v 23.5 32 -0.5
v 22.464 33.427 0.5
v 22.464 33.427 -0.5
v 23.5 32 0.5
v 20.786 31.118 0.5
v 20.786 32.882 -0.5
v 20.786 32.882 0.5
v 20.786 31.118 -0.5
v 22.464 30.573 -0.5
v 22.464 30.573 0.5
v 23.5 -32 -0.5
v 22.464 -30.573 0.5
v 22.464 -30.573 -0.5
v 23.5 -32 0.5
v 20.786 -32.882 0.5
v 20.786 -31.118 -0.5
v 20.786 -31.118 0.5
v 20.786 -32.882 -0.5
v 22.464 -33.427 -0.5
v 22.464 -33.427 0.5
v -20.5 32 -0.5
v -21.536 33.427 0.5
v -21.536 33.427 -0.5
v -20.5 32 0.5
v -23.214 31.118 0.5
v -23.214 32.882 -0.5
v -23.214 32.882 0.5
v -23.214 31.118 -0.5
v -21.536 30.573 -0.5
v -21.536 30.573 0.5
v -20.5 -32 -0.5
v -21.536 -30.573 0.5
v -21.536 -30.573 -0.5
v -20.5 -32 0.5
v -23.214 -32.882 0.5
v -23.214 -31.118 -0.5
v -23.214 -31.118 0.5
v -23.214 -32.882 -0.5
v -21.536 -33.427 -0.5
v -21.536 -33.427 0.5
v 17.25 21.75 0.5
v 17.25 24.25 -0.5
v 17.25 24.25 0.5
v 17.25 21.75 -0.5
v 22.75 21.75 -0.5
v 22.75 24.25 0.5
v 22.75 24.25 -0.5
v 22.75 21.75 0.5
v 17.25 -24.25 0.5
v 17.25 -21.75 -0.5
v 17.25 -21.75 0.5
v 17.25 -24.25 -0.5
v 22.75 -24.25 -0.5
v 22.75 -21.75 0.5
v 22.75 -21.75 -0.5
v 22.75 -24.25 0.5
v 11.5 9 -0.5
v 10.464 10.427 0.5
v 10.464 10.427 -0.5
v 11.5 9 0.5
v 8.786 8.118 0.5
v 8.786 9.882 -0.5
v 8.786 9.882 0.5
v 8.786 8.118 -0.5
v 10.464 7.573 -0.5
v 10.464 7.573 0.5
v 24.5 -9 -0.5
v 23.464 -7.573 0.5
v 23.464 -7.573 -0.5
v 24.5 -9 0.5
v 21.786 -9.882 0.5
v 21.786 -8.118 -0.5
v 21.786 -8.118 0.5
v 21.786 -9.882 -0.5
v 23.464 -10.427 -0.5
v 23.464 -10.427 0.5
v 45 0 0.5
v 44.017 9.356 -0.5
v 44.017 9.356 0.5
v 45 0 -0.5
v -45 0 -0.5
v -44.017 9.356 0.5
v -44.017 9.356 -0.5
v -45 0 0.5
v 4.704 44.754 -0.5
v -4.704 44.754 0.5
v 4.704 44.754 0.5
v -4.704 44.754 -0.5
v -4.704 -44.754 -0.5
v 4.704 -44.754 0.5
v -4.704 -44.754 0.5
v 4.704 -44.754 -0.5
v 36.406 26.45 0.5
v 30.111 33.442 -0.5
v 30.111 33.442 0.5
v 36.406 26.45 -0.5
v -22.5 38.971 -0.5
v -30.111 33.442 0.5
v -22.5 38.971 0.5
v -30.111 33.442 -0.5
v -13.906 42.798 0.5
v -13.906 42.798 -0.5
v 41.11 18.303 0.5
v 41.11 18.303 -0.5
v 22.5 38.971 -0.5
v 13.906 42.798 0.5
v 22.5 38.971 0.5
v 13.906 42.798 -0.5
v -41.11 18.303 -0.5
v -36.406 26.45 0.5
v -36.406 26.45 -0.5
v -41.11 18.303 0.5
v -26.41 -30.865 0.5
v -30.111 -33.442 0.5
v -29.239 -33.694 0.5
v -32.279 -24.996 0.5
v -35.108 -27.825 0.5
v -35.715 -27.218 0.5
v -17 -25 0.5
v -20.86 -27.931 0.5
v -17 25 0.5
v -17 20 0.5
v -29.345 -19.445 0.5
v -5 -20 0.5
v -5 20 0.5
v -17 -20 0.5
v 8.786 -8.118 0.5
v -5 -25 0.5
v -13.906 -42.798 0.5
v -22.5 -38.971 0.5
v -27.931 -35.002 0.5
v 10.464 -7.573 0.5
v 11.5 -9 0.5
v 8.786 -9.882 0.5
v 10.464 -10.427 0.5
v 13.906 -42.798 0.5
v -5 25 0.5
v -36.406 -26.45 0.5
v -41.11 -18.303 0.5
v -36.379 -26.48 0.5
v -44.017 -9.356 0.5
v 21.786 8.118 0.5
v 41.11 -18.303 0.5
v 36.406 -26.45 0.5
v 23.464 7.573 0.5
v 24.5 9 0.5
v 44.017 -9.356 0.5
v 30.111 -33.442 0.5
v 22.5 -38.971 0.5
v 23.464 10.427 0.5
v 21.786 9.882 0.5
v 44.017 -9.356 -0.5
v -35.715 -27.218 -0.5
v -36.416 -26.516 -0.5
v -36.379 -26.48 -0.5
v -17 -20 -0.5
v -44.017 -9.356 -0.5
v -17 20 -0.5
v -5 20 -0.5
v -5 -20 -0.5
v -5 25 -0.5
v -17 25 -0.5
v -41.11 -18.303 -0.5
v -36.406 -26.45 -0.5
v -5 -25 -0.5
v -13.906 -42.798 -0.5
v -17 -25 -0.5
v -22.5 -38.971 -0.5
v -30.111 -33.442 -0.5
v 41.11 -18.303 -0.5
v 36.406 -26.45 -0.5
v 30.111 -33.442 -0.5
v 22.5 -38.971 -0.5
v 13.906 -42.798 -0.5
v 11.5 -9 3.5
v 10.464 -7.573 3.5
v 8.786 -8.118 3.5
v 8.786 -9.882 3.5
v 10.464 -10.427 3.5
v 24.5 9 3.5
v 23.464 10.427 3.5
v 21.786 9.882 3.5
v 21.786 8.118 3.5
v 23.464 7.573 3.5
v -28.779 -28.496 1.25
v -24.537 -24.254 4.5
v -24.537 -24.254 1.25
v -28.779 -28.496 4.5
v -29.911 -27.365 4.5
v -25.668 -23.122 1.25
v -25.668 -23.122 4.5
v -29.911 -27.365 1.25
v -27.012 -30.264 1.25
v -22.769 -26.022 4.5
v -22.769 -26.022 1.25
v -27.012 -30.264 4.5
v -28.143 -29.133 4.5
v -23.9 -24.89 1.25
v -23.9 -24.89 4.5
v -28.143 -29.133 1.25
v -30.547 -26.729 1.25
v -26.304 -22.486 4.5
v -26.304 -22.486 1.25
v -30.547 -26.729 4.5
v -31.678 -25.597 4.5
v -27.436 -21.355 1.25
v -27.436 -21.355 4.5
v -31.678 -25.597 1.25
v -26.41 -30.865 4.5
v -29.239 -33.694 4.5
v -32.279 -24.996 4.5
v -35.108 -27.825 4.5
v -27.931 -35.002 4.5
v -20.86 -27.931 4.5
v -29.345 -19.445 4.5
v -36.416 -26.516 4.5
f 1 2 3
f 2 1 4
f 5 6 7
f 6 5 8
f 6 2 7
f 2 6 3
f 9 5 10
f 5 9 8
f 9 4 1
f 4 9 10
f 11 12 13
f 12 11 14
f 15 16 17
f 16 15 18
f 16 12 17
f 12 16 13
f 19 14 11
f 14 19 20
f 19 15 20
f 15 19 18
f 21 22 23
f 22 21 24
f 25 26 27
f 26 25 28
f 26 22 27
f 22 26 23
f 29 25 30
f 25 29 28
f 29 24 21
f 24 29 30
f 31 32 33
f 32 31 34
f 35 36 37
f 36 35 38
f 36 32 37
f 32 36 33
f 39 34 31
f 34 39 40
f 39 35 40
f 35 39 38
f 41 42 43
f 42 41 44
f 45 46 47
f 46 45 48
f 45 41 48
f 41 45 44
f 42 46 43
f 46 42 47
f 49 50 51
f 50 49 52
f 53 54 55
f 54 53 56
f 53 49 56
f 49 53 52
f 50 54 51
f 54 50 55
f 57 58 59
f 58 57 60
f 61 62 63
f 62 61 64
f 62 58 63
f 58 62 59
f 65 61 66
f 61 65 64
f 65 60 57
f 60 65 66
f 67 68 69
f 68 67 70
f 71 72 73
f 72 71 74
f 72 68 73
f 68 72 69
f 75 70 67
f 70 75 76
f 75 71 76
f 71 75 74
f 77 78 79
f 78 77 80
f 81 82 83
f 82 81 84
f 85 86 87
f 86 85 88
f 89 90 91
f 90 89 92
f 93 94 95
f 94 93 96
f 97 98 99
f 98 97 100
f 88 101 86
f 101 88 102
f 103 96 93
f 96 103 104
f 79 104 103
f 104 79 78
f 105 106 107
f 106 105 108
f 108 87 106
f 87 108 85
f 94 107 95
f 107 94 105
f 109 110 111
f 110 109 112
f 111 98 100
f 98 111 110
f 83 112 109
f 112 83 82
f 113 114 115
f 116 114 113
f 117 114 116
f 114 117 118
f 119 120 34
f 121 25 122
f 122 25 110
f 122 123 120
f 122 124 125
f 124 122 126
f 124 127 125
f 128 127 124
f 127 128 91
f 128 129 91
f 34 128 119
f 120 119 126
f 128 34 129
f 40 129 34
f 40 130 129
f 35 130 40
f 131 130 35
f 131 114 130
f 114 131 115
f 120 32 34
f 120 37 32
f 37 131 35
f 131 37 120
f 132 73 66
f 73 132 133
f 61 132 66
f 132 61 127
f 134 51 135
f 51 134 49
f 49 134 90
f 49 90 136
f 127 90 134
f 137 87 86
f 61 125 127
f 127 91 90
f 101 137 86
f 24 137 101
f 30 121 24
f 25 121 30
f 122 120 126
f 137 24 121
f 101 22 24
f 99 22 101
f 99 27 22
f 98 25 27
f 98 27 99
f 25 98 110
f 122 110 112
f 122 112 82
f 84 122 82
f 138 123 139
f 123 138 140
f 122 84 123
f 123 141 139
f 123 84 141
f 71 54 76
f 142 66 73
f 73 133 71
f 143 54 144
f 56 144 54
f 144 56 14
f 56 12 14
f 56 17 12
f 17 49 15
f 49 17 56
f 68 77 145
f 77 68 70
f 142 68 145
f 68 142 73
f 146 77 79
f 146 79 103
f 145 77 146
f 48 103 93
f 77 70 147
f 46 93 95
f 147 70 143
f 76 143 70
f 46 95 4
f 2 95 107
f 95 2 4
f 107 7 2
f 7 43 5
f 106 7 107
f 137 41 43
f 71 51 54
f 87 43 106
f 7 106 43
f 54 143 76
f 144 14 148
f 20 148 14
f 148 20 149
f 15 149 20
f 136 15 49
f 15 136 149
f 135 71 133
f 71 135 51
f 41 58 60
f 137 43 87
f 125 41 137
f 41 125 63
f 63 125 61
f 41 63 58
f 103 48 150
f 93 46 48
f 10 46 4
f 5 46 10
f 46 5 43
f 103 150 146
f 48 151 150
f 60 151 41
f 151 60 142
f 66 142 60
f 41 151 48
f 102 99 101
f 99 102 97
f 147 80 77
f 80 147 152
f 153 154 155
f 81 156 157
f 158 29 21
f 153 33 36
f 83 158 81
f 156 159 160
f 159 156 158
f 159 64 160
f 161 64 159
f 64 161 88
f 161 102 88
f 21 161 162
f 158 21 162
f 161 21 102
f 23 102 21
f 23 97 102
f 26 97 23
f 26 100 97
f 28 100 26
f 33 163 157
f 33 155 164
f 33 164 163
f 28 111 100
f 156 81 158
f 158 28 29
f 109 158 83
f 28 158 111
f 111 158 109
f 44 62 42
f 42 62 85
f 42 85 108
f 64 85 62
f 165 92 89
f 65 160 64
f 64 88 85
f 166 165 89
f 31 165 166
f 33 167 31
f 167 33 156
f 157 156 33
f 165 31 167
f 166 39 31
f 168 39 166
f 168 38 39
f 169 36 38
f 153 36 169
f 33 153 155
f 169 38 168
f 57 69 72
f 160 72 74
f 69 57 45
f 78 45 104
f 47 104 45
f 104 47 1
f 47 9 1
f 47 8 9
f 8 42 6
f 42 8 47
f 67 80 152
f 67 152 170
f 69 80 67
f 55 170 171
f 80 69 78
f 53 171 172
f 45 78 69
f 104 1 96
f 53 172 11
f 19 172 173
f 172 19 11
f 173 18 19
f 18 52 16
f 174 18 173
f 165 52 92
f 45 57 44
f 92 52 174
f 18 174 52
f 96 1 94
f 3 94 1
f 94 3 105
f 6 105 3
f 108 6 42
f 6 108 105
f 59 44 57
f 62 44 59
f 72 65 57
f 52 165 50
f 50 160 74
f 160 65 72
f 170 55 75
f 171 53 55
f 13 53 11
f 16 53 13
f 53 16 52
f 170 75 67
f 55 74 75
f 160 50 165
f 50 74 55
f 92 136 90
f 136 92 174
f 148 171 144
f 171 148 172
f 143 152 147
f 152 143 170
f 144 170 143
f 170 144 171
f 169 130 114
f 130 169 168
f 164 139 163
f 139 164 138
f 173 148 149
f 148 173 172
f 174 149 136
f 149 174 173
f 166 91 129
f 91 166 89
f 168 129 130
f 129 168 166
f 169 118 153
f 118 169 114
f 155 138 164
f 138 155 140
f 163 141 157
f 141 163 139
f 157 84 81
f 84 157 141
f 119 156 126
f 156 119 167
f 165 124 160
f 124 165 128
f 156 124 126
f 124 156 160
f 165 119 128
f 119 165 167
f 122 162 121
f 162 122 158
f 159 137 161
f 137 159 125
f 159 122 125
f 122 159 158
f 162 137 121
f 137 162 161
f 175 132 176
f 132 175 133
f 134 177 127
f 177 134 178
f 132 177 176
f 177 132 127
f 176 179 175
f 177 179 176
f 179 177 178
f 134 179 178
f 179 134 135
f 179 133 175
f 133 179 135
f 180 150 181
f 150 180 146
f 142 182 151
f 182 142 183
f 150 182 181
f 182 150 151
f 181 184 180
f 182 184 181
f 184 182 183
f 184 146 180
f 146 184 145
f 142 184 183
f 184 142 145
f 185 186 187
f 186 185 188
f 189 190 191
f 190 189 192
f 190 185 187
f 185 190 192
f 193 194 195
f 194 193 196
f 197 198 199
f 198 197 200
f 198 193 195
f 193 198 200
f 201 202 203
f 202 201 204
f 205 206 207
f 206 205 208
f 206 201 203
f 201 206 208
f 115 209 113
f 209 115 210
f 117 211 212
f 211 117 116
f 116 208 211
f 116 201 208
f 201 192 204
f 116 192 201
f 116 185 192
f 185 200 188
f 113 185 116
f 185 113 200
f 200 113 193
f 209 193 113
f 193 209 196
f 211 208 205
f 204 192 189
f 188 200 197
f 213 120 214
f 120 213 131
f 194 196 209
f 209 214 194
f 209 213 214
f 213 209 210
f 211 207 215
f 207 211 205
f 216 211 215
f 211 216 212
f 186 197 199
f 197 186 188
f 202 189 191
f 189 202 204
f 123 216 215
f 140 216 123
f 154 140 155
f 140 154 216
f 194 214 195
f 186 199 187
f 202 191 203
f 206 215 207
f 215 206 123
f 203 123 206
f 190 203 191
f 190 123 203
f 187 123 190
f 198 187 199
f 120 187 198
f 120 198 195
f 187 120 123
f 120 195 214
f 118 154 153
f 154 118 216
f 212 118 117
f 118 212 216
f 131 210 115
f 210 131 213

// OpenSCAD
// Capa control amb forats per suggectar a placa base, forats per cables dels motors, forats per suggectar controllador motor
difference(){
    cylinder(h = 1, r1 = 45, r2 = 45, center = true); // capa
    union(){ // forats perns M3 per suggectar a capa base
        translate([22,32,0]){
            cylinder(h = 4, r1 = 1.5, r2 = 1.5, center = true);
        }
        translate([22,-32,0]){
            cylinder(h = 4, r1 = 1.5, r2 = 1.5, center = true);
        }
        translate([-22,32,0]){
            cylinder(h = 4, r1 = 1.5, r2 = 1.5, center = true);
        }
        translate([-22,-32,0]){
            cylinder(h = 4, r1 = 1.5, r2 = 1.5, center = true); 
        }
    }
    union(){ // forats cables dels motors
        translate([20,23,0]){
//            cube(size = [7,4,4], center = true);
            cube(size = [5.5,2.5,4], center = true);
        }
        translate([20,-23,0]){
//            cube(size = [6,3,4], center = true);
            cube(size = [5.5,2.5,4], center = true);
        }
    }
    union(){ // forats perns M3 per suggectar controlador motor
        translate([10,0,0]){
            translate([0,9,0]){
                cylinder(h = 4, r1 = 1.5, r2 = 1.5, center = true);
            }
/*            translate([0,-9,0]){
                cylinder(h = 4, r1 = 1.5, r2 = 1.5, center = true); 
            }
            translate([13,9,0]){
                cylinder(h = 4, r1 = 1.5, r2 = 1.5, center = true);
            }*/
            translate([13,-9,0]){
                cylinder(h = 4, r1 = 1.5, r2 = 1.5, center = true); 
            }
        }
    }
    translate([-11,-22.5,0]){ // forat cables micro interruptor i alimentació
         cube(size = [12,5,4], center = true);
    }
    translate([-11,22.5,0]){ // forat cables micro interruptor i alimentació
         cube(size = [12,5,4], center = true);
    }
}
        translate([10,0,2]){
            translate([0,-9,0]){
                cylinder(h = 3, r1 = 1.5, r2 = 1.5, center = true); 
            }
            translate([13,9,0]){
                cylinder(h = 3, r1 = 1.5, r2 = 1.5, center = true);
            }
        }
rotate([0,0,135]){
    translate([1,42.5,2]){
        union(){ // support micro interruptor
            difference(){
                translate([0,-3,0]){ // suport
                    cube(size = [12,10,5], center = true);
                }
                translate([0,1,1]){
                    cube(size = [8.3,6,5], center = true); // forat principal
                    translate([0,-5,2]){ // forats cables
                        translate([0,0,0]){
                            cube(size = [1.6,15,7.5], center = true);
                        }
                        translate([-2.5,0,0]){
                            cube(size = [1.6,15,7.5], center = true);
                        }
                        translate([2.5,0,0]){
                            cube(size = [1.6,15,7.5], center = true);
                        }
                    }
                }
            }
        }
    }
}
